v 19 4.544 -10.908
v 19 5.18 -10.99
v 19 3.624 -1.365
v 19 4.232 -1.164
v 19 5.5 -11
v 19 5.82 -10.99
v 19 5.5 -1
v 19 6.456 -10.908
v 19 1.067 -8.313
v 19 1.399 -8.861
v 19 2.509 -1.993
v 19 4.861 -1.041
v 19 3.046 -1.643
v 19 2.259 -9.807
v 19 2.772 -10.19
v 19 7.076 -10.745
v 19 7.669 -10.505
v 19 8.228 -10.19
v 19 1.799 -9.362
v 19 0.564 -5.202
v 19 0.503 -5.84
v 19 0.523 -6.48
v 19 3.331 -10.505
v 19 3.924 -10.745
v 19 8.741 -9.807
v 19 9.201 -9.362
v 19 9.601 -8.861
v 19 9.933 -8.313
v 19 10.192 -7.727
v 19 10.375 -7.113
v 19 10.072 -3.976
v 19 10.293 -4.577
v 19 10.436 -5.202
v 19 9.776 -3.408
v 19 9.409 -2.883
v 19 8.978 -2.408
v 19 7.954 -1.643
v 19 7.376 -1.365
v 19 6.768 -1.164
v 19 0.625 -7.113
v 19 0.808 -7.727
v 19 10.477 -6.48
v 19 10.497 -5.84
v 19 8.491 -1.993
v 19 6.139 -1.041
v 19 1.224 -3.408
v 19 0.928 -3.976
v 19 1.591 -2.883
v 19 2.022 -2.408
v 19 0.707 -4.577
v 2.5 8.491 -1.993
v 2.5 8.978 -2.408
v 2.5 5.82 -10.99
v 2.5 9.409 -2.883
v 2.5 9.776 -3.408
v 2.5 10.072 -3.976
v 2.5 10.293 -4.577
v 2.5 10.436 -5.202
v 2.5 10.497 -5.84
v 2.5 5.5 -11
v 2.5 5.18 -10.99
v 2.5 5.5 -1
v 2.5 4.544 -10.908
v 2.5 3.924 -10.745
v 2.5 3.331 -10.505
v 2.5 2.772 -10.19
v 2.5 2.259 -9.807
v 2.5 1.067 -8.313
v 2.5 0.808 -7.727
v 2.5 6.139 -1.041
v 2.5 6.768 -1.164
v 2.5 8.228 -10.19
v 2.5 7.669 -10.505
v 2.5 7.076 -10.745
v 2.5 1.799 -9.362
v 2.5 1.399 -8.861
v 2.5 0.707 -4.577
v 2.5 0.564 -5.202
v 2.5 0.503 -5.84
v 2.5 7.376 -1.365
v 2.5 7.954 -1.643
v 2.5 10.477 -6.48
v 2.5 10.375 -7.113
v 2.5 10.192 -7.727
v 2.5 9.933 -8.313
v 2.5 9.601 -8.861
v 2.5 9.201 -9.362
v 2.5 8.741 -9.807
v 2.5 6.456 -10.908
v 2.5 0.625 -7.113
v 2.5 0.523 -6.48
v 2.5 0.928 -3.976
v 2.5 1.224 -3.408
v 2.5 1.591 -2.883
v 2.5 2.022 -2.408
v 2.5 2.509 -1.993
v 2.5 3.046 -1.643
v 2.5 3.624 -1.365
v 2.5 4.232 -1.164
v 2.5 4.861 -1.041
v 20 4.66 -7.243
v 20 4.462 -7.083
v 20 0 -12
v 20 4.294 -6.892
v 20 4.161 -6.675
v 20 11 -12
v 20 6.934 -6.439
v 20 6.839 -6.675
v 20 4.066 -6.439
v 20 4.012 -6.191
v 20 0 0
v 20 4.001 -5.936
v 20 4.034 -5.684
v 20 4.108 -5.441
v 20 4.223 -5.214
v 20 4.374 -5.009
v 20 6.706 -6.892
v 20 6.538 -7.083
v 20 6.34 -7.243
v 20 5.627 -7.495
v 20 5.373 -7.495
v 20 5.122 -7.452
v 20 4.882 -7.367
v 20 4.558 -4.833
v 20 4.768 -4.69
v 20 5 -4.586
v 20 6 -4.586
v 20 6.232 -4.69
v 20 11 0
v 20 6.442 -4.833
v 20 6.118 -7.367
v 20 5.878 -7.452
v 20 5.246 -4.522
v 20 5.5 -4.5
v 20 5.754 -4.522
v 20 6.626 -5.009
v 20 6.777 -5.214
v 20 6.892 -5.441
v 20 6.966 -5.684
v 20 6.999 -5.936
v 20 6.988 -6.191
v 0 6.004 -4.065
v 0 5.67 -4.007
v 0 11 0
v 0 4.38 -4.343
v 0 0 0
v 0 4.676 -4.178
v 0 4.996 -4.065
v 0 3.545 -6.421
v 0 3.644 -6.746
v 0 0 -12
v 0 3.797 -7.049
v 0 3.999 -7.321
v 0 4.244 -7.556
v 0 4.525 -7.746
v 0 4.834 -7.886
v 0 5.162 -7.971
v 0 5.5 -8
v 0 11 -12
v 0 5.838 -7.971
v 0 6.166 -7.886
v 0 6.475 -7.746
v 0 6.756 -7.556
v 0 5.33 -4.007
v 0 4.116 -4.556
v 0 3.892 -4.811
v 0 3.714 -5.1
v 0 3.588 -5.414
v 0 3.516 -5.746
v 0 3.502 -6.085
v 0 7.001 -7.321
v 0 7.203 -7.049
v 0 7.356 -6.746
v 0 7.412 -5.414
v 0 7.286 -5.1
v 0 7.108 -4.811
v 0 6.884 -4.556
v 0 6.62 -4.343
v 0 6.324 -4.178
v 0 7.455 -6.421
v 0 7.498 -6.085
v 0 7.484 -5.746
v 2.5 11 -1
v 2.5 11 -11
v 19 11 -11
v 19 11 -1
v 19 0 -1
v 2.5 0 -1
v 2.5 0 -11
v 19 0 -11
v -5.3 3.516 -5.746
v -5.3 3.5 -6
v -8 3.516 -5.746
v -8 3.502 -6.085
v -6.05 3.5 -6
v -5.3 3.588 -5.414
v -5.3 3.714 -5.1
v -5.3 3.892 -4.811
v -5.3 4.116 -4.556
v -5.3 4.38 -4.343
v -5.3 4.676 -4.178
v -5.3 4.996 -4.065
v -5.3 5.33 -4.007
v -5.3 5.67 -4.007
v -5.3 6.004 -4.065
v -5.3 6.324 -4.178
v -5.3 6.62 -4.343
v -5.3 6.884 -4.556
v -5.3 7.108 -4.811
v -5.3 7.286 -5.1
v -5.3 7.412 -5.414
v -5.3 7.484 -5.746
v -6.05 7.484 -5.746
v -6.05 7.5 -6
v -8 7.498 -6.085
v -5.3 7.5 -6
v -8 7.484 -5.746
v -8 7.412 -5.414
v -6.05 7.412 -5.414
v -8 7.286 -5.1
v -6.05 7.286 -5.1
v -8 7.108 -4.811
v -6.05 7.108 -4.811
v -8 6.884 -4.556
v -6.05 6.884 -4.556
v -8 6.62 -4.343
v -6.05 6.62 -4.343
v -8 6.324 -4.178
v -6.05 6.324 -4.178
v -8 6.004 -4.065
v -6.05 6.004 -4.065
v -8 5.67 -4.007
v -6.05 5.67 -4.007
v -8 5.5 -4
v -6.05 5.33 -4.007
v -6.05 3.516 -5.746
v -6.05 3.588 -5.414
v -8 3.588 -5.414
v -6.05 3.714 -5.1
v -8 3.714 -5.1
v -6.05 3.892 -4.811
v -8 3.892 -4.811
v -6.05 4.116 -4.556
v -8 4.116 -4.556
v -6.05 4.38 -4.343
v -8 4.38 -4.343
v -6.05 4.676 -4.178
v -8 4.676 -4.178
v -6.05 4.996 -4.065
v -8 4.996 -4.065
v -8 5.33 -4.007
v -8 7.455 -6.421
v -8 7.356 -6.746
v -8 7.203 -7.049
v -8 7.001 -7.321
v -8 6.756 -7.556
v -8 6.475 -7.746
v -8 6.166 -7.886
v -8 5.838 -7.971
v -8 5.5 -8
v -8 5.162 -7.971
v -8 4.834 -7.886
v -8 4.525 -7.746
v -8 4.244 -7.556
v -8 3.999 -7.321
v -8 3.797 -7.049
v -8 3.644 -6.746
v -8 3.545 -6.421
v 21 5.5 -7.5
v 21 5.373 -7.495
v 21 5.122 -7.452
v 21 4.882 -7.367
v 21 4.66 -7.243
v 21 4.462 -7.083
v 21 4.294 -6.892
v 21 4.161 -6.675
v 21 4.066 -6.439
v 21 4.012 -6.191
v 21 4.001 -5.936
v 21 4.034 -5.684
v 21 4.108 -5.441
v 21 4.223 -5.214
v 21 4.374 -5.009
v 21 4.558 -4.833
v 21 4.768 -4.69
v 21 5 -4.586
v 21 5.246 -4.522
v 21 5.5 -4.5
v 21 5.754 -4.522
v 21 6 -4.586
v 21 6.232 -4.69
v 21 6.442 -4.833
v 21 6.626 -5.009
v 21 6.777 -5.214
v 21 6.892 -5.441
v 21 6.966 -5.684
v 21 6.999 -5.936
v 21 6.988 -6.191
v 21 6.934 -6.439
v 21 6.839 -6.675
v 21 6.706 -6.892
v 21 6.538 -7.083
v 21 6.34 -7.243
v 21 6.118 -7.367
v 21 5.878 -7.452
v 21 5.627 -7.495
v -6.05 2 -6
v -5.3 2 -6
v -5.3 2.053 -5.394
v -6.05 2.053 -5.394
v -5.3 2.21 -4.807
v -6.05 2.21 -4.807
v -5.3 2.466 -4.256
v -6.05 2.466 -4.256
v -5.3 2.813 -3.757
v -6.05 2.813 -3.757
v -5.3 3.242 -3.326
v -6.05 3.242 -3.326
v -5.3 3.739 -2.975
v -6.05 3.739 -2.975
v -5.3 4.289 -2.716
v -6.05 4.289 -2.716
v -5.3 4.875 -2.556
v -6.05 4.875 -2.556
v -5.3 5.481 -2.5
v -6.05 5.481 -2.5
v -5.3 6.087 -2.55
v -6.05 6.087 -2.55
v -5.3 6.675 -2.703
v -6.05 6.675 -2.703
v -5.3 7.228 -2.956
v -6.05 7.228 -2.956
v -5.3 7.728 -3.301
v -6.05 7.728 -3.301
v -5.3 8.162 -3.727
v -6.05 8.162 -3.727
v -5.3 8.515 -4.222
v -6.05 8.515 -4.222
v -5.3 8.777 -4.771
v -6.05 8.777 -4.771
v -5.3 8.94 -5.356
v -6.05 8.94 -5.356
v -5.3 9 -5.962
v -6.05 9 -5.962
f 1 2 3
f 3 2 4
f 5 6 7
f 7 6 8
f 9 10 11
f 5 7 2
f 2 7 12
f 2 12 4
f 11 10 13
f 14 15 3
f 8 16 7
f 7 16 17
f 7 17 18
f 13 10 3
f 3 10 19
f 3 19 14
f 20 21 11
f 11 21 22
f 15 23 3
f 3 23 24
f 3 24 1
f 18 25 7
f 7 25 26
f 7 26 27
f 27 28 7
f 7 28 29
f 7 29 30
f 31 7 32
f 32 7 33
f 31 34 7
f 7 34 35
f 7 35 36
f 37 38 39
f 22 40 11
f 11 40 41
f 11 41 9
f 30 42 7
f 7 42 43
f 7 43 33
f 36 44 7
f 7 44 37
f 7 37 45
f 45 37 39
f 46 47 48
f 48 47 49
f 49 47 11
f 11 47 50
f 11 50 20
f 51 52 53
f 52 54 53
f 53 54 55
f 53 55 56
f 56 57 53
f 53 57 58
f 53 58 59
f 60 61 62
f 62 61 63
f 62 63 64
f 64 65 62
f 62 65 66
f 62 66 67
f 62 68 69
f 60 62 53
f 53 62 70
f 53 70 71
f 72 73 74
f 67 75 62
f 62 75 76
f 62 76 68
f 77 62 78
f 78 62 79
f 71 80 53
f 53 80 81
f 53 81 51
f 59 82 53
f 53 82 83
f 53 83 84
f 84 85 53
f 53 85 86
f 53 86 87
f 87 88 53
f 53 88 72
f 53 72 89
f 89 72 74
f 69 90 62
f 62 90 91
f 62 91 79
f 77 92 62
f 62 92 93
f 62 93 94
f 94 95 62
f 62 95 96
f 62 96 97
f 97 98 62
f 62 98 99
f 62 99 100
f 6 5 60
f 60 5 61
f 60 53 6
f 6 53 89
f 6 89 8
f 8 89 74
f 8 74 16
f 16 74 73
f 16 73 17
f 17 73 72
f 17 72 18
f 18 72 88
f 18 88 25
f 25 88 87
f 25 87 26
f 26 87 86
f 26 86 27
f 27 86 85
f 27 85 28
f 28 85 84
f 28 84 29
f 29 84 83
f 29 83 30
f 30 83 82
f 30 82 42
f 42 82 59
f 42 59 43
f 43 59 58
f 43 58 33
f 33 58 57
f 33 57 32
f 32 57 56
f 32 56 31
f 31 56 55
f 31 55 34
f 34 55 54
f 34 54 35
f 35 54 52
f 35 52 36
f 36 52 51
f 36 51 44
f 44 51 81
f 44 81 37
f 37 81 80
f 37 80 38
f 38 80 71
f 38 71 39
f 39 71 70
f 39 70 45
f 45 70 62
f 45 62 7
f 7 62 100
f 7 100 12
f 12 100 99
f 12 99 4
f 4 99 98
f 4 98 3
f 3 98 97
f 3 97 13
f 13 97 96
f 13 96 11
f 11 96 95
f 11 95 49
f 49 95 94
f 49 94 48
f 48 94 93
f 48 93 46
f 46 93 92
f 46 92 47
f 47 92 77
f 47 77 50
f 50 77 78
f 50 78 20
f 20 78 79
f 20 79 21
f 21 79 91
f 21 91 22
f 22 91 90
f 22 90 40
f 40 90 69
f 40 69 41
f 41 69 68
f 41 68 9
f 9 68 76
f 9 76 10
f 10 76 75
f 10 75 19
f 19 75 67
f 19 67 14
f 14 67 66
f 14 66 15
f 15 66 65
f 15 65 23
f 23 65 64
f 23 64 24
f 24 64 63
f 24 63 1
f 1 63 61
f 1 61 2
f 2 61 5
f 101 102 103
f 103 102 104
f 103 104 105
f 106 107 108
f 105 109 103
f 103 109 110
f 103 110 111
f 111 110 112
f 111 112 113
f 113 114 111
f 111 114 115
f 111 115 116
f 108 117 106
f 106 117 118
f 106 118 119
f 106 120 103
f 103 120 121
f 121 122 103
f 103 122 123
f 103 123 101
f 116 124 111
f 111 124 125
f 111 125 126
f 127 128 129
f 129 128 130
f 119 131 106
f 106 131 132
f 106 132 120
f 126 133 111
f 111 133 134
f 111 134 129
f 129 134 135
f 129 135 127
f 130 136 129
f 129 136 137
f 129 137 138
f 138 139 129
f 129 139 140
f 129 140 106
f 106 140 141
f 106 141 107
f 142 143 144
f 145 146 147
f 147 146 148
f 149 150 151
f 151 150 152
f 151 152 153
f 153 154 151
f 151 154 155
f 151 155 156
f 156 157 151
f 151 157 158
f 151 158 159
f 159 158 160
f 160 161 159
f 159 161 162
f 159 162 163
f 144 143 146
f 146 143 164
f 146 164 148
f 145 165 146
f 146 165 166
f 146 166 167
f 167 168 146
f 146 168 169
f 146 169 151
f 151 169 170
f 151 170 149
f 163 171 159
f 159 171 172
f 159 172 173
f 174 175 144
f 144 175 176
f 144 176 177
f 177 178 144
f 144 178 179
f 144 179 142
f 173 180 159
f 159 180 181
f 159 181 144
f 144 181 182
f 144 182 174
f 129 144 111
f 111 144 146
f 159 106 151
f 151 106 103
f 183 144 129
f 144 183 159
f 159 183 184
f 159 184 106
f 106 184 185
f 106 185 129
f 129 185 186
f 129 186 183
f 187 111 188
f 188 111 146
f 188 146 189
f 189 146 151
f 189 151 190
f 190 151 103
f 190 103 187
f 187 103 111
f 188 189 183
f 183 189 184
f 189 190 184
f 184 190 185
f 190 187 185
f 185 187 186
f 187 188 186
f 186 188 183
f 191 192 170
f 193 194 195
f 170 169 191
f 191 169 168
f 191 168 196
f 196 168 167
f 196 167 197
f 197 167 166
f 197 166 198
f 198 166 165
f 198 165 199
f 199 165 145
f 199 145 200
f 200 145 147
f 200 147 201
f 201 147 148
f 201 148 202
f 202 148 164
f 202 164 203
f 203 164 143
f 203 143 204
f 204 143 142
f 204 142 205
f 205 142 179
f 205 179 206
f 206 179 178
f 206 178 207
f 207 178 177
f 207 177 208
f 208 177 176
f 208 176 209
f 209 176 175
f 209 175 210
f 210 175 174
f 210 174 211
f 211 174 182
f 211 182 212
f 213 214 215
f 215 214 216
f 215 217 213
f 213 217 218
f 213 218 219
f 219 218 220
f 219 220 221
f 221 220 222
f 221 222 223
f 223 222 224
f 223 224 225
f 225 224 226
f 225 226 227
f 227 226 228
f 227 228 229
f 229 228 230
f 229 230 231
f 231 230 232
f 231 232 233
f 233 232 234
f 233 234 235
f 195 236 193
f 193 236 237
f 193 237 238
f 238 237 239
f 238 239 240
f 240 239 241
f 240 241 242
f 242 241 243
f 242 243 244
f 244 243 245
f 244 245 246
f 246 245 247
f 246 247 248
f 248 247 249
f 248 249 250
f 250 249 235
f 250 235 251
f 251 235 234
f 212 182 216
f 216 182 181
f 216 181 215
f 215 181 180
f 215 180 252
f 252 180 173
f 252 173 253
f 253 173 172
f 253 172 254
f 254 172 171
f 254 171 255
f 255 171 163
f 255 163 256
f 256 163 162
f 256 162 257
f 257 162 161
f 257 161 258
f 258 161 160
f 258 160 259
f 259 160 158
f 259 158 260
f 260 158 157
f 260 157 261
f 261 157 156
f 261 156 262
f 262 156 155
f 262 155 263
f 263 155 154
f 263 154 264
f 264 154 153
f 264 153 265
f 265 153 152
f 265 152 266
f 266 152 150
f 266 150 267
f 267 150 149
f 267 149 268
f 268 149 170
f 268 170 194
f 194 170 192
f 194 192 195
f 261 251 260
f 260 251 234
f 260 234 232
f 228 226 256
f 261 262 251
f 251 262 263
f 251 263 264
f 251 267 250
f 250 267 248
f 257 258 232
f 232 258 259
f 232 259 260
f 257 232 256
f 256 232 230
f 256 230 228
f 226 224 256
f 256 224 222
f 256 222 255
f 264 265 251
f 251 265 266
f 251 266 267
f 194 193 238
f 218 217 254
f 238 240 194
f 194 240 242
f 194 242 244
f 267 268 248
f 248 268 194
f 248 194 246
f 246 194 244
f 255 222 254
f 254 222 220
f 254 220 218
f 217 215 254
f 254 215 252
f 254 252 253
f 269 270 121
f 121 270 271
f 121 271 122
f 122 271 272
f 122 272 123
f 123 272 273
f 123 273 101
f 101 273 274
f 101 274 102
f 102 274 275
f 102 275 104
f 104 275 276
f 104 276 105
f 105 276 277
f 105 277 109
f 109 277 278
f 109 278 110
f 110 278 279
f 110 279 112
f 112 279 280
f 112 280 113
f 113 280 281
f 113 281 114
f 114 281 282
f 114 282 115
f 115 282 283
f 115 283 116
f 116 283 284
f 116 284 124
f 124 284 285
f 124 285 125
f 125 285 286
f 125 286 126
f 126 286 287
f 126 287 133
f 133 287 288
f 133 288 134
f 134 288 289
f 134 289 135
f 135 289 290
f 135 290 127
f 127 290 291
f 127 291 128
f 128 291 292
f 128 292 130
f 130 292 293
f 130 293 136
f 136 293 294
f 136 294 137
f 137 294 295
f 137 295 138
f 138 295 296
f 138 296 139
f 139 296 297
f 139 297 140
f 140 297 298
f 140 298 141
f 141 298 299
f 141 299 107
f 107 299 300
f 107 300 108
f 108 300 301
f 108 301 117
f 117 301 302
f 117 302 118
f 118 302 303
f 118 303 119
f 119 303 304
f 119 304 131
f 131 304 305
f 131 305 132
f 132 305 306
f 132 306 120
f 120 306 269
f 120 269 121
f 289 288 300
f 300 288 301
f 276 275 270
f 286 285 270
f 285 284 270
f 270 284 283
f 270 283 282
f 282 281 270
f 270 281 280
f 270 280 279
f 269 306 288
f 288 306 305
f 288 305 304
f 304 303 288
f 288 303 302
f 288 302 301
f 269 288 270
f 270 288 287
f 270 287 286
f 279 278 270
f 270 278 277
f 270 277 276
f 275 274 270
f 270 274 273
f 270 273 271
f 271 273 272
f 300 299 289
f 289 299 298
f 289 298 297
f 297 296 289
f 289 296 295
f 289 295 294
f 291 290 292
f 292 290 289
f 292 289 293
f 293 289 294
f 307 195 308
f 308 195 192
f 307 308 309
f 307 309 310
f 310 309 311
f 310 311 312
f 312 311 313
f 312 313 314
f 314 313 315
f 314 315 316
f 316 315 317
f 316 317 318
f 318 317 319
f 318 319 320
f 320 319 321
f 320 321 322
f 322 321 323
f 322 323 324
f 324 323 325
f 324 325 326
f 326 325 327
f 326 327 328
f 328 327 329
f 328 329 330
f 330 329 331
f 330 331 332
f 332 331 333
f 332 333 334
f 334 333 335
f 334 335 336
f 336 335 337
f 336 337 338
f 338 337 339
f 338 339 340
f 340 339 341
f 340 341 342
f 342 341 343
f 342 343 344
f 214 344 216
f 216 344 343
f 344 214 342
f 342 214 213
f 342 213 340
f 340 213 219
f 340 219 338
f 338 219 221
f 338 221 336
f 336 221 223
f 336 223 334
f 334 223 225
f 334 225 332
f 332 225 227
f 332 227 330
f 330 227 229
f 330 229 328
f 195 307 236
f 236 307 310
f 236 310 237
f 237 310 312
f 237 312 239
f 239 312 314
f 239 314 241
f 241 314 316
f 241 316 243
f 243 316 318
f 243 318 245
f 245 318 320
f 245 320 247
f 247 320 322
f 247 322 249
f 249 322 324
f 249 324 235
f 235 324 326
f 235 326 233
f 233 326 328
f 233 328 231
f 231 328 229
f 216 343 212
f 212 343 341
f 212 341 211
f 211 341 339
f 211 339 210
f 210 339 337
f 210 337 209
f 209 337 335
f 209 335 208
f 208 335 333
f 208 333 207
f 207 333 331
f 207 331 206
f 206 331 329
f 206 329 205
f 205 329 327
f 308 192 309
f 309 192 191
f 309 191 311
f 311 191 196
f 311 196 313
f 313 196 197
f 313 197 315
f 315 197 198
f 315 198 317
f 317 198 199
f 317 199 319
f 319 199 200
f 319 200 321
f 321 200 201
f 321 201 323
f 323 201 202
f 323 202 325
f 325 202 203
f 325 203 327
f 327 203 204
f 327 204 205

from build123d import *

# Parameters (mm, degrees)
SKETCH1_W           = 20
SKETCH1_H           = 12
BOSS_EXTRUDE1_DEPTH = 11
SKETCH3_W           = 16.5
SKETCH3_H           = 10
CUT_EXTRUDE1_DEPTH  = 12
BOSS_EXTRUDE3_REACH = 19.5
SKETCH4_R           = 5
SKETCH5_R           = 2
BOSS_EXTRUDE4_DEPTH = 8
SKETCH6_R           = 1.5
BOSS_EXTRUDE5_DEPTH = 1
BOSS_EXTRUDE6_DEPTH = 0.75


with BuildPart() as part:
    # Sketch1 → Boss-Extrude1 (new body)
    with BuildSketch(Plane(origin=(0, 0, 0), x_dir=(1, 0, 0), z_dir=(0, 1, 0))):
        with Locations((10, 6)):
            Rectangle(SKETCH1_W, SKETCH1_H)
    extrude(amount=BOSS_EXTRUDE1_DEPTH)

    # Sketch3 → Cut-Extrude1 (cut, through all)
    with BuildSketch(Plane(origin=(0, 11, 0), x_dir=(1, 0, 0), z_dir=(0, 1, 0))):
        with Locations((10.75, 6)):
            Rectangle(SKETCH3_W, SKETCH3_H)
    extrude(amount=-CUT_EXTRUDE1_DEPTH, mode=Mode.SUBTRACT)


with BuildPart() as body_2:

    # Sketch4 → Boss-Extrude3 (new body, up to next)
    with BuildSketch(Plane(origin=(2.5, 0, 0), x_dir=(0, 0, -1), z_dir=(1, 0, 0)), mode=Mode.PRIVATE) as boss_extrude3_sk1:
        with Locations((6, 5.5)):
            Circle(SKETCH4_R)
    boss_extrude3_tool1 = extrude(boss_extrude3_sk1.sketch, amount=BOSS_EXTRUDE3_REACH, mode=Mode.PRIVATE) - part.part
    add(boss_extrude3_tool1.solids().sort_by_distance((2.5, 5.5, -6))[0])


with BuildPart() as part_1:
    add(part.part)

    # Sketch5 → Boss-Extrude4 (add)
    with BuildSketch(Plane.ZY):
        with Locations((-6, 5.5)):
            Circle(SKETCH5_R)
    extrude(amount=BOSS_EXTRUDE4_DEPTH)

    # Sketch6 → Boss-Extrude5 (add)
    with BuildSketch(Plane(origin=(20, 0, 0), x_dir=(0, 0, -1), z_dir=(1, 0, 0))):
        with Locations((6, 5.5)):
            Circle(SKETCH6_R)
    extrude(amount=BOSS_EXTRUDE5_DEPTH)

    # Sketch7 → Boss-Extrude6 (add)
    with BuildSketch(Plane.ZY.offset(5.3)):
        with BuildLine():
            Line((-6, 7.5), (-5.961540784, 8.999788692))
            ThreePointArc((-5.961540784, 8.999788692), (-2.500052827, 5.480770102), (-6, 2))
            Line((-6, 2), (-6, 3.5))
            ThreePointArc((-6, 3.5), (-4, 5.5), (-6, 7.5))
        make_face()
    extrude(amount=BOSS_EXTRUDE6_DEPTH)


solid = Compound([body_2.part, part_1.part])
